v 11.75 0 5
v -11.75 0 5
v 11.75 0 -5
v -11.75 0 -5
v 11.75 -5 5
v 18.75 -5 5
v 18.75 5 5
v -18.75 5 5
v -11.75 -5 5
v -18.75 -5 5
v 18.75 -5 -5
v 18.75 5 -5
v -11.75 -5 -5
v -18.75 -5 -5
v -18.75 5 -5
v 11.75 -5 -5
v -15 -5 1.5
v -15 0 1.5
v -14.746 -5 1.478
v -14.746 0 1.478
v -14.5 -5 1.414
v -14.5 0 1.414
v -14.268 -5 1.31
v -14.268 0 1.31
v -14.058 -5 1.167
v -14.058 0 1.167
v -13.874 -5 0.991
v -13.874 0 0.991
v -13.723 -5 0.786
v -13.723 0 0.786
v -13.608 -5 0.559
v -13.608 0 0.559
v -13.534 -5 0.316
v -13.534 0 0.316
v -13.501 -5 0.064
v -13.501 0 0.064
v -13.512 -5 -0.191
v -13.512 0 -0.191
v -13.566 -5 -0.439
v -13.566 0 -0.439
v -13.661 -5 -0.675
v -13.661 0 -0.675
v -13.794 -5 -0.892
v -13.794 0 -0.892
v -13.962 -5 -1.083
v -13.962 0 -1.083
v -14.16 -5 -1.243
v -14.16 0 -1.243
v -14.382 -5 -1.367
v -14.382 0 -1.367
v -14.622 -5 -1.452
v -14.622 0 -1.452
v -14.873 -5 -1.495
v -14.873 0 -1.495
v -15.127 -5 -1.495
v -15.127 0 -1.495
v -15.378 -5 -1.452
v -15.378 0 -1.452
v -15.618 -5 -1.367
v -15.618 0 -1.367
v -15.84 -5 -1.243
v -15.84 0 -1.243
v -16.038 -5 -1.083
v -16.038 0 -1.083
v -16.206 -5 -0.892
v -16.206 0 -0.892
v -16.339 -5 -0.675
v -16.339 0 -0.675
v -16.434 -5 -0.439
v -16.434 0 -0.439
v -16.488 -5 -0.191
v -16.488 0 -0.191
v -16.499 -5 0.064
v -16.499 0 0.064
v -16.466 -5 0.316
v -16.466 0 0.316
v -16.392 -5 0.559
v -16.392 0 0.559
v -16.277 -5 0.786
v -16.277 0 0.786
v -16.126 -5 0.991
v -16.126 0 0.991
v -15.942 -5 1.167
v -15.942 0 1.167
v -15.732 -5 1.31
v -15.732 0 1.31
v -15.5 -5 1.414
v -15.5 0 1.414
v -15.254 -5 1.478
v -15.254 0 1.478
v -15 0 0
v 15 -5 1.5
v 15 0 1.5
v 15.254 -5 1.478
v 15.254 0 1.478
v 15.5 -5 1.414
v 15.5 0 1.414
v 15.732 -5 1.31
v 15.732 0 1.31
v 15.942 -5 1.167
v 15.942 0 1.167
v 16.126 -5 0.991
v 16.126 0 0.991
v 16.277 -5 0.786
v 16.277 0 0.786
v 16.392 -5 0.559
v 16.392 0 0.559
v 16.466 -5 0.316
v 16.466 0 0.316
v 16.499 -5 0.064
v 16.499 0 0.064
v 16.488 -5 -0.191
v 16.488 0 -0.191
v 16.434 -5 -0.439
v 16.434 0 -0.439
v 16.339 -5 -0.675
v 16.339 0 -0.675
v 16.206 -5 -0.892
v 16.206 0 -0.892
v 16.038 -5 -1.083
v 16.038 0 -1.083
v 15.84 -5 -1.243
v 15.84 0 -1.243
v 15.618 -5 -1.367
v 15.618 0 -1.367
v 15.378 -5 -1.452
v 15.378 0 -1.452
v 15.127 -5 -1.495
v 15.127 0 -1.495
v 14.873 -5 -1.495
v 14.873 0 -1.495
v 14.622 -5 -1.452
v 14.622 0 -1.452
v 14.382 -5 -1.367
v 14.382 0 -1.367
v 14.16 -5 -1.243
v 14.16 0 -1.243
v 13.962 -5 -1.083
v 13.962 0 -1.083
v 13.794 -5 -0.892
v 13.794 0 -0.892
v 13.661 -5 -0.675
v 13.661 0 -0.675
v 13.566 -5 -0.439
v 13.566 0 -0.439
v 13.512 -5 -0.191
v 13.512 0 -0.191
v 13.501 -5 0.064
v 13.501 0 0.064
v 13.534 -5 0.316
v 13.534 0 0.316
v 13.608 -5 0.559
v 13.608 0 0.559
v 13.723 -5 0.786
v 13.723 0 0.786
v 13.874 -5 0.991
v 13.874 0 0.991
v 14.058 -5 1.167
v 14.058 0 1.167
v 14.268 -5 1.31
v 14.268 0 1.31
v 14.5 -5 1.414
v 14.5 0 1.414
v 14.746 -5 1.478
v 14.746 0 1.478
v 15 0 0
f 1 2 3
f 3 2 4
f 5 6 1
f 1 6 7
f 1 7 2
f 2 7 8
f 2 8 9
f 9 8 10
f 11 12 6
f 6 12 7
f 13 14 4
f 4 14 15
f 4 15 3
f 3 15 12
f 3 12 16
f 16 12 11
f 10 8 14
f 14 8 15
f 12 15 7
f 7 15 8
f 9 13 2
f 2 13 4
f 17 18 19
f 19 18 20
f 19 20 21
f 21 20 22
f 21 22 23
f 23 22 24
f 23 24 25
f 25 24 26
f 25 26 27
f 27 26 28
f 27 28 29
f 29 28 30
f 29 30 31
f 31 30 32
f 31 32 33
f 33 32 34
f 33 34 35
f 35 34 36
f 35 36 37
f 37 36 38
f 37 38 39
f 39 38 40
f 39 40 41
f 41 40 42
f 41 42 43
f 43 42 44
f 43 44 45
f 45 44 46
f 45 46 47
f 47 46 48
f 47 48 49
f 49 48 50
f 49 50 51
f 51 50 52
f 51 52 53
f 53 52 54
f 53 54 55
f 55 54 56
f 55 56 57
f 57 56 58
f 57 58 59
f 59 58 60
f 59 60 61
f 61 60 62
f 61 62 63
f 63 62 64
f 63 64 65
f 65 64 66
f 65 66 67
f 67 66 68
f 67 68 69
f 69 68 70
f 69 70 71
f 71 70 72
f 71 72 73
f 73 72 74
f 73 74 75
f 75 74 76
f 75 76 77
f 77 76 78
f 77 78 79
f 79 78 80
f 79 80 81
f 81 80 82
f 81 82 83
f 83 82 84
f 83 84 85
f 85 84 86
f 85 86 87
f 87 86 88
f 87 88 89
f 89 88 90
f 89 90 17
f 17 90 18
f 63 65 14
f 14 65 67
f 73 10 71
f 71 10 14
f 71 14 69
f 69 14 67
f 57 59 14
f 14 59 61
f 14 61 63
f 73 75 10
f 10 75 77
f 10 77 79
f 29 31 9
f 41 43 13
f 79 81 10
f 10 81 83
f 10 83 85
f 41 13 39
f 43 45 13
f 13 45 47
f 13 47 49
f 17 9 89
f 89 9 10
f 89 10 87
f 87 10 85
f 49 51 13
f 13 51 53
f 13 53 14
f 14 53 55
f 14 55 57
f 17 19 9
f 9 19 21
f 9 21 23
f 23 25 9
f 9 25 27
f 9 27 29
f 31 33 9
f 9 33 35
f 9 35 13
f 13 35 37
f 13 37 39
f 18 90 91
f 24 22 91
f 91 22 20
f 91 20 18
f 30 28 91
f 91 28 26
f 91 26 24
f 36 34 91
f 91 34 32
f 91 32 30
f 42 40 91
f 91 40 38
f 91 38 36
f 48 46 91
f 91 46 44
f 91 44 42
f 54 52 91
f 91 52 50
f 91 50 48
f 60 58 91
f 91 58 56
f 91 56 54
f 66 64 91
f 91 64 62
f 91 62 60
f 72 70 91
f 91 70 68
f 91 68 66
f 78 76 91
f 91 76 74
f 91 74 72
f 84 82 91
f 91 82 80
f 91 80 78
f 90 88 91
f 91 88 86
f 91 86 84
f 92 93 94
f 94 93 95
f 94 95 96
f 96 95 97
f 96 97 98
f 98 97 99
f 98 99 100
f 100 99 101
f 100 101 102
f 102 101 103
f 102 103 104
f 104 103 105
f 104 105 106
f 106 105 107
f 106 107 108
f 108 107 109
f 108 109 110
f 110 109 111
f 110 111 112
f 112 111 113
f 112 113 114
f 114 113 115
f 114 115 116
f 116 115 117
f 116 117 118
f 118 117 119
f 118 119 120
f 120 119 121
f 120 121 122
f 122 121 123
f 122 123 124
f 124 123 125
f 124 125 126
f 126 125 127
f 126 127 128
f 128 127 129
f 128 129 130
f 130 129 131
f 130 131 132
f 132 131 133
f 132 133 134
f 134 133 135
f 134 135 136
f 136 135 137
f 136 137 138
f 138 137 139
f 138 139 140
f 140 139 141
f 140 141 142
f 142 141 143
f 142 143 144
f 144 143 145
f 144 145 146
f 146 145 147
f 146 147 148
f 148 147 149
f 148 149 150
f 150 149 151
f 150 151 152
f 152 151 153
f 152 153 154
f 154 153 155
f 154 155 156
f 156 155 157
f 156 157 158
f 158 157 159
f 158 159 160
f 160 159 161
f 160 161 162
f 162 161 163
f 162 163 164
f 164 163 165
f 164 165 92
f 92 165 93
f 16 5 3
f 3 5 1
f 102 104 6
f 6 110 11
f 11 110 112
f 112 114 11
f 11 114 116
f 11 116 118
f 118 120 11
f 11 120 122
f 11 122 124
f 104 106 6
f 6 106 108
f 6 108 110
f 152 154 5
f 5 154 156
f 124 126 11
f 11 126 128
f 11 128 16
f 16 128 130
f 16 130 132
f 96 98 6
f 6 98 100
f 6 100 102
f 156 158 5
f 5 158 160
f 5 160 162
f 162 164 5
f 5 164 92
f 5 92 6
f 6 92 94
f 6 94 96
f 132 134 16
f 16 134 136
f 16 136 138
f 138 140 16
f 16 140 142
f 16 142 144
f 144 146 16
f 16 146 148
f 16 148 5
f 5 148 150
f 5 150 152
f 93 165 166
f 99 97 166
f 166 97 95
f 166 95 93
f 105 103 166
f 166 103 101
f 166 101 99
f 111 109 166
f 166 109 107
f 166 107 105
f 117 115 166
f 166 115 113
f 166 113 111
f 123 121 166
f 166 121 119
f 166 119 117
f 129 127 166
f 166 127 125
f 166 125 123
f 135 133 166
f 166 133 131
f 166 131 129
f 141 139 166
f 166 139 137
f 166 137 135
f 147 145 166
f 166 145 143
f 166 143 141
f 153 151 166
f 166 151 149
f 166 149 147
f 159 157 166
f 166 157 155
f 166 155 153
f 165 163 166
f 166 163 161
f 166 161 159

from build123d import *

# Parameters (mm, degrees)
CROQUIS1_W              = 37.5
CROQUIS1_H              = 10
SALIENTE_EXTRUIR1_DEPTH = 5
CROQUIS1_3_W            = 7
CROQUIS1_3_H            = 10
CROQUIS1_3_R            = 1.5
SALIENTE_EXTRUIR2_DEPTH = 5


with BuildPart() as part:
    # Croquis1 → Saliente-Extruir1 (new body)
    with BuildSketch(Plane(origin=(0, 0, 0), x_dir=(1, 0, 0), z_dir=(0, 1, 0))):
        Rectangle(CROQUIS1_W, CROQUIS1_H)
    extrude(amount=SALIENTE_EXTRUIR1_DEPTH)

    # Croquis1<3> → Saliente-Extruir2 (add)
    # profile 1 of 2: a face of its own
    with BuildSketch(Plane(origin=(0, 0, 0), x_dir=(1, 0, 0), z_dir=(0, 1, 0))):
        with Locations((-15.25, 0)):
            Rectangle(CROQUIS1_3_W, CROQUIS1_3_H)
        with Locations((-15, 0)):
            Circle(CROQUIS1_3_R, mode=Mode.SUBTRACT)
    # profile 2 of 2: a face of its own
    with BuildSketch(Plane(origin=(0, 0, 0), x_dir=(1, 0, 0), z_dir=(0, 1, 0))):
        with Locations((15.25, 0)):
            Rectangle(CROQUIS1_3_W, CROQUIS1_3_H)
        with Locations((15, 0)):
            Circle(CROQUIS1_3_R, mode=Mode.SUBTRACT)
    extrude(amount=-SALIENTE_EXTRUIR2_DEPTH)


solid = part.part
